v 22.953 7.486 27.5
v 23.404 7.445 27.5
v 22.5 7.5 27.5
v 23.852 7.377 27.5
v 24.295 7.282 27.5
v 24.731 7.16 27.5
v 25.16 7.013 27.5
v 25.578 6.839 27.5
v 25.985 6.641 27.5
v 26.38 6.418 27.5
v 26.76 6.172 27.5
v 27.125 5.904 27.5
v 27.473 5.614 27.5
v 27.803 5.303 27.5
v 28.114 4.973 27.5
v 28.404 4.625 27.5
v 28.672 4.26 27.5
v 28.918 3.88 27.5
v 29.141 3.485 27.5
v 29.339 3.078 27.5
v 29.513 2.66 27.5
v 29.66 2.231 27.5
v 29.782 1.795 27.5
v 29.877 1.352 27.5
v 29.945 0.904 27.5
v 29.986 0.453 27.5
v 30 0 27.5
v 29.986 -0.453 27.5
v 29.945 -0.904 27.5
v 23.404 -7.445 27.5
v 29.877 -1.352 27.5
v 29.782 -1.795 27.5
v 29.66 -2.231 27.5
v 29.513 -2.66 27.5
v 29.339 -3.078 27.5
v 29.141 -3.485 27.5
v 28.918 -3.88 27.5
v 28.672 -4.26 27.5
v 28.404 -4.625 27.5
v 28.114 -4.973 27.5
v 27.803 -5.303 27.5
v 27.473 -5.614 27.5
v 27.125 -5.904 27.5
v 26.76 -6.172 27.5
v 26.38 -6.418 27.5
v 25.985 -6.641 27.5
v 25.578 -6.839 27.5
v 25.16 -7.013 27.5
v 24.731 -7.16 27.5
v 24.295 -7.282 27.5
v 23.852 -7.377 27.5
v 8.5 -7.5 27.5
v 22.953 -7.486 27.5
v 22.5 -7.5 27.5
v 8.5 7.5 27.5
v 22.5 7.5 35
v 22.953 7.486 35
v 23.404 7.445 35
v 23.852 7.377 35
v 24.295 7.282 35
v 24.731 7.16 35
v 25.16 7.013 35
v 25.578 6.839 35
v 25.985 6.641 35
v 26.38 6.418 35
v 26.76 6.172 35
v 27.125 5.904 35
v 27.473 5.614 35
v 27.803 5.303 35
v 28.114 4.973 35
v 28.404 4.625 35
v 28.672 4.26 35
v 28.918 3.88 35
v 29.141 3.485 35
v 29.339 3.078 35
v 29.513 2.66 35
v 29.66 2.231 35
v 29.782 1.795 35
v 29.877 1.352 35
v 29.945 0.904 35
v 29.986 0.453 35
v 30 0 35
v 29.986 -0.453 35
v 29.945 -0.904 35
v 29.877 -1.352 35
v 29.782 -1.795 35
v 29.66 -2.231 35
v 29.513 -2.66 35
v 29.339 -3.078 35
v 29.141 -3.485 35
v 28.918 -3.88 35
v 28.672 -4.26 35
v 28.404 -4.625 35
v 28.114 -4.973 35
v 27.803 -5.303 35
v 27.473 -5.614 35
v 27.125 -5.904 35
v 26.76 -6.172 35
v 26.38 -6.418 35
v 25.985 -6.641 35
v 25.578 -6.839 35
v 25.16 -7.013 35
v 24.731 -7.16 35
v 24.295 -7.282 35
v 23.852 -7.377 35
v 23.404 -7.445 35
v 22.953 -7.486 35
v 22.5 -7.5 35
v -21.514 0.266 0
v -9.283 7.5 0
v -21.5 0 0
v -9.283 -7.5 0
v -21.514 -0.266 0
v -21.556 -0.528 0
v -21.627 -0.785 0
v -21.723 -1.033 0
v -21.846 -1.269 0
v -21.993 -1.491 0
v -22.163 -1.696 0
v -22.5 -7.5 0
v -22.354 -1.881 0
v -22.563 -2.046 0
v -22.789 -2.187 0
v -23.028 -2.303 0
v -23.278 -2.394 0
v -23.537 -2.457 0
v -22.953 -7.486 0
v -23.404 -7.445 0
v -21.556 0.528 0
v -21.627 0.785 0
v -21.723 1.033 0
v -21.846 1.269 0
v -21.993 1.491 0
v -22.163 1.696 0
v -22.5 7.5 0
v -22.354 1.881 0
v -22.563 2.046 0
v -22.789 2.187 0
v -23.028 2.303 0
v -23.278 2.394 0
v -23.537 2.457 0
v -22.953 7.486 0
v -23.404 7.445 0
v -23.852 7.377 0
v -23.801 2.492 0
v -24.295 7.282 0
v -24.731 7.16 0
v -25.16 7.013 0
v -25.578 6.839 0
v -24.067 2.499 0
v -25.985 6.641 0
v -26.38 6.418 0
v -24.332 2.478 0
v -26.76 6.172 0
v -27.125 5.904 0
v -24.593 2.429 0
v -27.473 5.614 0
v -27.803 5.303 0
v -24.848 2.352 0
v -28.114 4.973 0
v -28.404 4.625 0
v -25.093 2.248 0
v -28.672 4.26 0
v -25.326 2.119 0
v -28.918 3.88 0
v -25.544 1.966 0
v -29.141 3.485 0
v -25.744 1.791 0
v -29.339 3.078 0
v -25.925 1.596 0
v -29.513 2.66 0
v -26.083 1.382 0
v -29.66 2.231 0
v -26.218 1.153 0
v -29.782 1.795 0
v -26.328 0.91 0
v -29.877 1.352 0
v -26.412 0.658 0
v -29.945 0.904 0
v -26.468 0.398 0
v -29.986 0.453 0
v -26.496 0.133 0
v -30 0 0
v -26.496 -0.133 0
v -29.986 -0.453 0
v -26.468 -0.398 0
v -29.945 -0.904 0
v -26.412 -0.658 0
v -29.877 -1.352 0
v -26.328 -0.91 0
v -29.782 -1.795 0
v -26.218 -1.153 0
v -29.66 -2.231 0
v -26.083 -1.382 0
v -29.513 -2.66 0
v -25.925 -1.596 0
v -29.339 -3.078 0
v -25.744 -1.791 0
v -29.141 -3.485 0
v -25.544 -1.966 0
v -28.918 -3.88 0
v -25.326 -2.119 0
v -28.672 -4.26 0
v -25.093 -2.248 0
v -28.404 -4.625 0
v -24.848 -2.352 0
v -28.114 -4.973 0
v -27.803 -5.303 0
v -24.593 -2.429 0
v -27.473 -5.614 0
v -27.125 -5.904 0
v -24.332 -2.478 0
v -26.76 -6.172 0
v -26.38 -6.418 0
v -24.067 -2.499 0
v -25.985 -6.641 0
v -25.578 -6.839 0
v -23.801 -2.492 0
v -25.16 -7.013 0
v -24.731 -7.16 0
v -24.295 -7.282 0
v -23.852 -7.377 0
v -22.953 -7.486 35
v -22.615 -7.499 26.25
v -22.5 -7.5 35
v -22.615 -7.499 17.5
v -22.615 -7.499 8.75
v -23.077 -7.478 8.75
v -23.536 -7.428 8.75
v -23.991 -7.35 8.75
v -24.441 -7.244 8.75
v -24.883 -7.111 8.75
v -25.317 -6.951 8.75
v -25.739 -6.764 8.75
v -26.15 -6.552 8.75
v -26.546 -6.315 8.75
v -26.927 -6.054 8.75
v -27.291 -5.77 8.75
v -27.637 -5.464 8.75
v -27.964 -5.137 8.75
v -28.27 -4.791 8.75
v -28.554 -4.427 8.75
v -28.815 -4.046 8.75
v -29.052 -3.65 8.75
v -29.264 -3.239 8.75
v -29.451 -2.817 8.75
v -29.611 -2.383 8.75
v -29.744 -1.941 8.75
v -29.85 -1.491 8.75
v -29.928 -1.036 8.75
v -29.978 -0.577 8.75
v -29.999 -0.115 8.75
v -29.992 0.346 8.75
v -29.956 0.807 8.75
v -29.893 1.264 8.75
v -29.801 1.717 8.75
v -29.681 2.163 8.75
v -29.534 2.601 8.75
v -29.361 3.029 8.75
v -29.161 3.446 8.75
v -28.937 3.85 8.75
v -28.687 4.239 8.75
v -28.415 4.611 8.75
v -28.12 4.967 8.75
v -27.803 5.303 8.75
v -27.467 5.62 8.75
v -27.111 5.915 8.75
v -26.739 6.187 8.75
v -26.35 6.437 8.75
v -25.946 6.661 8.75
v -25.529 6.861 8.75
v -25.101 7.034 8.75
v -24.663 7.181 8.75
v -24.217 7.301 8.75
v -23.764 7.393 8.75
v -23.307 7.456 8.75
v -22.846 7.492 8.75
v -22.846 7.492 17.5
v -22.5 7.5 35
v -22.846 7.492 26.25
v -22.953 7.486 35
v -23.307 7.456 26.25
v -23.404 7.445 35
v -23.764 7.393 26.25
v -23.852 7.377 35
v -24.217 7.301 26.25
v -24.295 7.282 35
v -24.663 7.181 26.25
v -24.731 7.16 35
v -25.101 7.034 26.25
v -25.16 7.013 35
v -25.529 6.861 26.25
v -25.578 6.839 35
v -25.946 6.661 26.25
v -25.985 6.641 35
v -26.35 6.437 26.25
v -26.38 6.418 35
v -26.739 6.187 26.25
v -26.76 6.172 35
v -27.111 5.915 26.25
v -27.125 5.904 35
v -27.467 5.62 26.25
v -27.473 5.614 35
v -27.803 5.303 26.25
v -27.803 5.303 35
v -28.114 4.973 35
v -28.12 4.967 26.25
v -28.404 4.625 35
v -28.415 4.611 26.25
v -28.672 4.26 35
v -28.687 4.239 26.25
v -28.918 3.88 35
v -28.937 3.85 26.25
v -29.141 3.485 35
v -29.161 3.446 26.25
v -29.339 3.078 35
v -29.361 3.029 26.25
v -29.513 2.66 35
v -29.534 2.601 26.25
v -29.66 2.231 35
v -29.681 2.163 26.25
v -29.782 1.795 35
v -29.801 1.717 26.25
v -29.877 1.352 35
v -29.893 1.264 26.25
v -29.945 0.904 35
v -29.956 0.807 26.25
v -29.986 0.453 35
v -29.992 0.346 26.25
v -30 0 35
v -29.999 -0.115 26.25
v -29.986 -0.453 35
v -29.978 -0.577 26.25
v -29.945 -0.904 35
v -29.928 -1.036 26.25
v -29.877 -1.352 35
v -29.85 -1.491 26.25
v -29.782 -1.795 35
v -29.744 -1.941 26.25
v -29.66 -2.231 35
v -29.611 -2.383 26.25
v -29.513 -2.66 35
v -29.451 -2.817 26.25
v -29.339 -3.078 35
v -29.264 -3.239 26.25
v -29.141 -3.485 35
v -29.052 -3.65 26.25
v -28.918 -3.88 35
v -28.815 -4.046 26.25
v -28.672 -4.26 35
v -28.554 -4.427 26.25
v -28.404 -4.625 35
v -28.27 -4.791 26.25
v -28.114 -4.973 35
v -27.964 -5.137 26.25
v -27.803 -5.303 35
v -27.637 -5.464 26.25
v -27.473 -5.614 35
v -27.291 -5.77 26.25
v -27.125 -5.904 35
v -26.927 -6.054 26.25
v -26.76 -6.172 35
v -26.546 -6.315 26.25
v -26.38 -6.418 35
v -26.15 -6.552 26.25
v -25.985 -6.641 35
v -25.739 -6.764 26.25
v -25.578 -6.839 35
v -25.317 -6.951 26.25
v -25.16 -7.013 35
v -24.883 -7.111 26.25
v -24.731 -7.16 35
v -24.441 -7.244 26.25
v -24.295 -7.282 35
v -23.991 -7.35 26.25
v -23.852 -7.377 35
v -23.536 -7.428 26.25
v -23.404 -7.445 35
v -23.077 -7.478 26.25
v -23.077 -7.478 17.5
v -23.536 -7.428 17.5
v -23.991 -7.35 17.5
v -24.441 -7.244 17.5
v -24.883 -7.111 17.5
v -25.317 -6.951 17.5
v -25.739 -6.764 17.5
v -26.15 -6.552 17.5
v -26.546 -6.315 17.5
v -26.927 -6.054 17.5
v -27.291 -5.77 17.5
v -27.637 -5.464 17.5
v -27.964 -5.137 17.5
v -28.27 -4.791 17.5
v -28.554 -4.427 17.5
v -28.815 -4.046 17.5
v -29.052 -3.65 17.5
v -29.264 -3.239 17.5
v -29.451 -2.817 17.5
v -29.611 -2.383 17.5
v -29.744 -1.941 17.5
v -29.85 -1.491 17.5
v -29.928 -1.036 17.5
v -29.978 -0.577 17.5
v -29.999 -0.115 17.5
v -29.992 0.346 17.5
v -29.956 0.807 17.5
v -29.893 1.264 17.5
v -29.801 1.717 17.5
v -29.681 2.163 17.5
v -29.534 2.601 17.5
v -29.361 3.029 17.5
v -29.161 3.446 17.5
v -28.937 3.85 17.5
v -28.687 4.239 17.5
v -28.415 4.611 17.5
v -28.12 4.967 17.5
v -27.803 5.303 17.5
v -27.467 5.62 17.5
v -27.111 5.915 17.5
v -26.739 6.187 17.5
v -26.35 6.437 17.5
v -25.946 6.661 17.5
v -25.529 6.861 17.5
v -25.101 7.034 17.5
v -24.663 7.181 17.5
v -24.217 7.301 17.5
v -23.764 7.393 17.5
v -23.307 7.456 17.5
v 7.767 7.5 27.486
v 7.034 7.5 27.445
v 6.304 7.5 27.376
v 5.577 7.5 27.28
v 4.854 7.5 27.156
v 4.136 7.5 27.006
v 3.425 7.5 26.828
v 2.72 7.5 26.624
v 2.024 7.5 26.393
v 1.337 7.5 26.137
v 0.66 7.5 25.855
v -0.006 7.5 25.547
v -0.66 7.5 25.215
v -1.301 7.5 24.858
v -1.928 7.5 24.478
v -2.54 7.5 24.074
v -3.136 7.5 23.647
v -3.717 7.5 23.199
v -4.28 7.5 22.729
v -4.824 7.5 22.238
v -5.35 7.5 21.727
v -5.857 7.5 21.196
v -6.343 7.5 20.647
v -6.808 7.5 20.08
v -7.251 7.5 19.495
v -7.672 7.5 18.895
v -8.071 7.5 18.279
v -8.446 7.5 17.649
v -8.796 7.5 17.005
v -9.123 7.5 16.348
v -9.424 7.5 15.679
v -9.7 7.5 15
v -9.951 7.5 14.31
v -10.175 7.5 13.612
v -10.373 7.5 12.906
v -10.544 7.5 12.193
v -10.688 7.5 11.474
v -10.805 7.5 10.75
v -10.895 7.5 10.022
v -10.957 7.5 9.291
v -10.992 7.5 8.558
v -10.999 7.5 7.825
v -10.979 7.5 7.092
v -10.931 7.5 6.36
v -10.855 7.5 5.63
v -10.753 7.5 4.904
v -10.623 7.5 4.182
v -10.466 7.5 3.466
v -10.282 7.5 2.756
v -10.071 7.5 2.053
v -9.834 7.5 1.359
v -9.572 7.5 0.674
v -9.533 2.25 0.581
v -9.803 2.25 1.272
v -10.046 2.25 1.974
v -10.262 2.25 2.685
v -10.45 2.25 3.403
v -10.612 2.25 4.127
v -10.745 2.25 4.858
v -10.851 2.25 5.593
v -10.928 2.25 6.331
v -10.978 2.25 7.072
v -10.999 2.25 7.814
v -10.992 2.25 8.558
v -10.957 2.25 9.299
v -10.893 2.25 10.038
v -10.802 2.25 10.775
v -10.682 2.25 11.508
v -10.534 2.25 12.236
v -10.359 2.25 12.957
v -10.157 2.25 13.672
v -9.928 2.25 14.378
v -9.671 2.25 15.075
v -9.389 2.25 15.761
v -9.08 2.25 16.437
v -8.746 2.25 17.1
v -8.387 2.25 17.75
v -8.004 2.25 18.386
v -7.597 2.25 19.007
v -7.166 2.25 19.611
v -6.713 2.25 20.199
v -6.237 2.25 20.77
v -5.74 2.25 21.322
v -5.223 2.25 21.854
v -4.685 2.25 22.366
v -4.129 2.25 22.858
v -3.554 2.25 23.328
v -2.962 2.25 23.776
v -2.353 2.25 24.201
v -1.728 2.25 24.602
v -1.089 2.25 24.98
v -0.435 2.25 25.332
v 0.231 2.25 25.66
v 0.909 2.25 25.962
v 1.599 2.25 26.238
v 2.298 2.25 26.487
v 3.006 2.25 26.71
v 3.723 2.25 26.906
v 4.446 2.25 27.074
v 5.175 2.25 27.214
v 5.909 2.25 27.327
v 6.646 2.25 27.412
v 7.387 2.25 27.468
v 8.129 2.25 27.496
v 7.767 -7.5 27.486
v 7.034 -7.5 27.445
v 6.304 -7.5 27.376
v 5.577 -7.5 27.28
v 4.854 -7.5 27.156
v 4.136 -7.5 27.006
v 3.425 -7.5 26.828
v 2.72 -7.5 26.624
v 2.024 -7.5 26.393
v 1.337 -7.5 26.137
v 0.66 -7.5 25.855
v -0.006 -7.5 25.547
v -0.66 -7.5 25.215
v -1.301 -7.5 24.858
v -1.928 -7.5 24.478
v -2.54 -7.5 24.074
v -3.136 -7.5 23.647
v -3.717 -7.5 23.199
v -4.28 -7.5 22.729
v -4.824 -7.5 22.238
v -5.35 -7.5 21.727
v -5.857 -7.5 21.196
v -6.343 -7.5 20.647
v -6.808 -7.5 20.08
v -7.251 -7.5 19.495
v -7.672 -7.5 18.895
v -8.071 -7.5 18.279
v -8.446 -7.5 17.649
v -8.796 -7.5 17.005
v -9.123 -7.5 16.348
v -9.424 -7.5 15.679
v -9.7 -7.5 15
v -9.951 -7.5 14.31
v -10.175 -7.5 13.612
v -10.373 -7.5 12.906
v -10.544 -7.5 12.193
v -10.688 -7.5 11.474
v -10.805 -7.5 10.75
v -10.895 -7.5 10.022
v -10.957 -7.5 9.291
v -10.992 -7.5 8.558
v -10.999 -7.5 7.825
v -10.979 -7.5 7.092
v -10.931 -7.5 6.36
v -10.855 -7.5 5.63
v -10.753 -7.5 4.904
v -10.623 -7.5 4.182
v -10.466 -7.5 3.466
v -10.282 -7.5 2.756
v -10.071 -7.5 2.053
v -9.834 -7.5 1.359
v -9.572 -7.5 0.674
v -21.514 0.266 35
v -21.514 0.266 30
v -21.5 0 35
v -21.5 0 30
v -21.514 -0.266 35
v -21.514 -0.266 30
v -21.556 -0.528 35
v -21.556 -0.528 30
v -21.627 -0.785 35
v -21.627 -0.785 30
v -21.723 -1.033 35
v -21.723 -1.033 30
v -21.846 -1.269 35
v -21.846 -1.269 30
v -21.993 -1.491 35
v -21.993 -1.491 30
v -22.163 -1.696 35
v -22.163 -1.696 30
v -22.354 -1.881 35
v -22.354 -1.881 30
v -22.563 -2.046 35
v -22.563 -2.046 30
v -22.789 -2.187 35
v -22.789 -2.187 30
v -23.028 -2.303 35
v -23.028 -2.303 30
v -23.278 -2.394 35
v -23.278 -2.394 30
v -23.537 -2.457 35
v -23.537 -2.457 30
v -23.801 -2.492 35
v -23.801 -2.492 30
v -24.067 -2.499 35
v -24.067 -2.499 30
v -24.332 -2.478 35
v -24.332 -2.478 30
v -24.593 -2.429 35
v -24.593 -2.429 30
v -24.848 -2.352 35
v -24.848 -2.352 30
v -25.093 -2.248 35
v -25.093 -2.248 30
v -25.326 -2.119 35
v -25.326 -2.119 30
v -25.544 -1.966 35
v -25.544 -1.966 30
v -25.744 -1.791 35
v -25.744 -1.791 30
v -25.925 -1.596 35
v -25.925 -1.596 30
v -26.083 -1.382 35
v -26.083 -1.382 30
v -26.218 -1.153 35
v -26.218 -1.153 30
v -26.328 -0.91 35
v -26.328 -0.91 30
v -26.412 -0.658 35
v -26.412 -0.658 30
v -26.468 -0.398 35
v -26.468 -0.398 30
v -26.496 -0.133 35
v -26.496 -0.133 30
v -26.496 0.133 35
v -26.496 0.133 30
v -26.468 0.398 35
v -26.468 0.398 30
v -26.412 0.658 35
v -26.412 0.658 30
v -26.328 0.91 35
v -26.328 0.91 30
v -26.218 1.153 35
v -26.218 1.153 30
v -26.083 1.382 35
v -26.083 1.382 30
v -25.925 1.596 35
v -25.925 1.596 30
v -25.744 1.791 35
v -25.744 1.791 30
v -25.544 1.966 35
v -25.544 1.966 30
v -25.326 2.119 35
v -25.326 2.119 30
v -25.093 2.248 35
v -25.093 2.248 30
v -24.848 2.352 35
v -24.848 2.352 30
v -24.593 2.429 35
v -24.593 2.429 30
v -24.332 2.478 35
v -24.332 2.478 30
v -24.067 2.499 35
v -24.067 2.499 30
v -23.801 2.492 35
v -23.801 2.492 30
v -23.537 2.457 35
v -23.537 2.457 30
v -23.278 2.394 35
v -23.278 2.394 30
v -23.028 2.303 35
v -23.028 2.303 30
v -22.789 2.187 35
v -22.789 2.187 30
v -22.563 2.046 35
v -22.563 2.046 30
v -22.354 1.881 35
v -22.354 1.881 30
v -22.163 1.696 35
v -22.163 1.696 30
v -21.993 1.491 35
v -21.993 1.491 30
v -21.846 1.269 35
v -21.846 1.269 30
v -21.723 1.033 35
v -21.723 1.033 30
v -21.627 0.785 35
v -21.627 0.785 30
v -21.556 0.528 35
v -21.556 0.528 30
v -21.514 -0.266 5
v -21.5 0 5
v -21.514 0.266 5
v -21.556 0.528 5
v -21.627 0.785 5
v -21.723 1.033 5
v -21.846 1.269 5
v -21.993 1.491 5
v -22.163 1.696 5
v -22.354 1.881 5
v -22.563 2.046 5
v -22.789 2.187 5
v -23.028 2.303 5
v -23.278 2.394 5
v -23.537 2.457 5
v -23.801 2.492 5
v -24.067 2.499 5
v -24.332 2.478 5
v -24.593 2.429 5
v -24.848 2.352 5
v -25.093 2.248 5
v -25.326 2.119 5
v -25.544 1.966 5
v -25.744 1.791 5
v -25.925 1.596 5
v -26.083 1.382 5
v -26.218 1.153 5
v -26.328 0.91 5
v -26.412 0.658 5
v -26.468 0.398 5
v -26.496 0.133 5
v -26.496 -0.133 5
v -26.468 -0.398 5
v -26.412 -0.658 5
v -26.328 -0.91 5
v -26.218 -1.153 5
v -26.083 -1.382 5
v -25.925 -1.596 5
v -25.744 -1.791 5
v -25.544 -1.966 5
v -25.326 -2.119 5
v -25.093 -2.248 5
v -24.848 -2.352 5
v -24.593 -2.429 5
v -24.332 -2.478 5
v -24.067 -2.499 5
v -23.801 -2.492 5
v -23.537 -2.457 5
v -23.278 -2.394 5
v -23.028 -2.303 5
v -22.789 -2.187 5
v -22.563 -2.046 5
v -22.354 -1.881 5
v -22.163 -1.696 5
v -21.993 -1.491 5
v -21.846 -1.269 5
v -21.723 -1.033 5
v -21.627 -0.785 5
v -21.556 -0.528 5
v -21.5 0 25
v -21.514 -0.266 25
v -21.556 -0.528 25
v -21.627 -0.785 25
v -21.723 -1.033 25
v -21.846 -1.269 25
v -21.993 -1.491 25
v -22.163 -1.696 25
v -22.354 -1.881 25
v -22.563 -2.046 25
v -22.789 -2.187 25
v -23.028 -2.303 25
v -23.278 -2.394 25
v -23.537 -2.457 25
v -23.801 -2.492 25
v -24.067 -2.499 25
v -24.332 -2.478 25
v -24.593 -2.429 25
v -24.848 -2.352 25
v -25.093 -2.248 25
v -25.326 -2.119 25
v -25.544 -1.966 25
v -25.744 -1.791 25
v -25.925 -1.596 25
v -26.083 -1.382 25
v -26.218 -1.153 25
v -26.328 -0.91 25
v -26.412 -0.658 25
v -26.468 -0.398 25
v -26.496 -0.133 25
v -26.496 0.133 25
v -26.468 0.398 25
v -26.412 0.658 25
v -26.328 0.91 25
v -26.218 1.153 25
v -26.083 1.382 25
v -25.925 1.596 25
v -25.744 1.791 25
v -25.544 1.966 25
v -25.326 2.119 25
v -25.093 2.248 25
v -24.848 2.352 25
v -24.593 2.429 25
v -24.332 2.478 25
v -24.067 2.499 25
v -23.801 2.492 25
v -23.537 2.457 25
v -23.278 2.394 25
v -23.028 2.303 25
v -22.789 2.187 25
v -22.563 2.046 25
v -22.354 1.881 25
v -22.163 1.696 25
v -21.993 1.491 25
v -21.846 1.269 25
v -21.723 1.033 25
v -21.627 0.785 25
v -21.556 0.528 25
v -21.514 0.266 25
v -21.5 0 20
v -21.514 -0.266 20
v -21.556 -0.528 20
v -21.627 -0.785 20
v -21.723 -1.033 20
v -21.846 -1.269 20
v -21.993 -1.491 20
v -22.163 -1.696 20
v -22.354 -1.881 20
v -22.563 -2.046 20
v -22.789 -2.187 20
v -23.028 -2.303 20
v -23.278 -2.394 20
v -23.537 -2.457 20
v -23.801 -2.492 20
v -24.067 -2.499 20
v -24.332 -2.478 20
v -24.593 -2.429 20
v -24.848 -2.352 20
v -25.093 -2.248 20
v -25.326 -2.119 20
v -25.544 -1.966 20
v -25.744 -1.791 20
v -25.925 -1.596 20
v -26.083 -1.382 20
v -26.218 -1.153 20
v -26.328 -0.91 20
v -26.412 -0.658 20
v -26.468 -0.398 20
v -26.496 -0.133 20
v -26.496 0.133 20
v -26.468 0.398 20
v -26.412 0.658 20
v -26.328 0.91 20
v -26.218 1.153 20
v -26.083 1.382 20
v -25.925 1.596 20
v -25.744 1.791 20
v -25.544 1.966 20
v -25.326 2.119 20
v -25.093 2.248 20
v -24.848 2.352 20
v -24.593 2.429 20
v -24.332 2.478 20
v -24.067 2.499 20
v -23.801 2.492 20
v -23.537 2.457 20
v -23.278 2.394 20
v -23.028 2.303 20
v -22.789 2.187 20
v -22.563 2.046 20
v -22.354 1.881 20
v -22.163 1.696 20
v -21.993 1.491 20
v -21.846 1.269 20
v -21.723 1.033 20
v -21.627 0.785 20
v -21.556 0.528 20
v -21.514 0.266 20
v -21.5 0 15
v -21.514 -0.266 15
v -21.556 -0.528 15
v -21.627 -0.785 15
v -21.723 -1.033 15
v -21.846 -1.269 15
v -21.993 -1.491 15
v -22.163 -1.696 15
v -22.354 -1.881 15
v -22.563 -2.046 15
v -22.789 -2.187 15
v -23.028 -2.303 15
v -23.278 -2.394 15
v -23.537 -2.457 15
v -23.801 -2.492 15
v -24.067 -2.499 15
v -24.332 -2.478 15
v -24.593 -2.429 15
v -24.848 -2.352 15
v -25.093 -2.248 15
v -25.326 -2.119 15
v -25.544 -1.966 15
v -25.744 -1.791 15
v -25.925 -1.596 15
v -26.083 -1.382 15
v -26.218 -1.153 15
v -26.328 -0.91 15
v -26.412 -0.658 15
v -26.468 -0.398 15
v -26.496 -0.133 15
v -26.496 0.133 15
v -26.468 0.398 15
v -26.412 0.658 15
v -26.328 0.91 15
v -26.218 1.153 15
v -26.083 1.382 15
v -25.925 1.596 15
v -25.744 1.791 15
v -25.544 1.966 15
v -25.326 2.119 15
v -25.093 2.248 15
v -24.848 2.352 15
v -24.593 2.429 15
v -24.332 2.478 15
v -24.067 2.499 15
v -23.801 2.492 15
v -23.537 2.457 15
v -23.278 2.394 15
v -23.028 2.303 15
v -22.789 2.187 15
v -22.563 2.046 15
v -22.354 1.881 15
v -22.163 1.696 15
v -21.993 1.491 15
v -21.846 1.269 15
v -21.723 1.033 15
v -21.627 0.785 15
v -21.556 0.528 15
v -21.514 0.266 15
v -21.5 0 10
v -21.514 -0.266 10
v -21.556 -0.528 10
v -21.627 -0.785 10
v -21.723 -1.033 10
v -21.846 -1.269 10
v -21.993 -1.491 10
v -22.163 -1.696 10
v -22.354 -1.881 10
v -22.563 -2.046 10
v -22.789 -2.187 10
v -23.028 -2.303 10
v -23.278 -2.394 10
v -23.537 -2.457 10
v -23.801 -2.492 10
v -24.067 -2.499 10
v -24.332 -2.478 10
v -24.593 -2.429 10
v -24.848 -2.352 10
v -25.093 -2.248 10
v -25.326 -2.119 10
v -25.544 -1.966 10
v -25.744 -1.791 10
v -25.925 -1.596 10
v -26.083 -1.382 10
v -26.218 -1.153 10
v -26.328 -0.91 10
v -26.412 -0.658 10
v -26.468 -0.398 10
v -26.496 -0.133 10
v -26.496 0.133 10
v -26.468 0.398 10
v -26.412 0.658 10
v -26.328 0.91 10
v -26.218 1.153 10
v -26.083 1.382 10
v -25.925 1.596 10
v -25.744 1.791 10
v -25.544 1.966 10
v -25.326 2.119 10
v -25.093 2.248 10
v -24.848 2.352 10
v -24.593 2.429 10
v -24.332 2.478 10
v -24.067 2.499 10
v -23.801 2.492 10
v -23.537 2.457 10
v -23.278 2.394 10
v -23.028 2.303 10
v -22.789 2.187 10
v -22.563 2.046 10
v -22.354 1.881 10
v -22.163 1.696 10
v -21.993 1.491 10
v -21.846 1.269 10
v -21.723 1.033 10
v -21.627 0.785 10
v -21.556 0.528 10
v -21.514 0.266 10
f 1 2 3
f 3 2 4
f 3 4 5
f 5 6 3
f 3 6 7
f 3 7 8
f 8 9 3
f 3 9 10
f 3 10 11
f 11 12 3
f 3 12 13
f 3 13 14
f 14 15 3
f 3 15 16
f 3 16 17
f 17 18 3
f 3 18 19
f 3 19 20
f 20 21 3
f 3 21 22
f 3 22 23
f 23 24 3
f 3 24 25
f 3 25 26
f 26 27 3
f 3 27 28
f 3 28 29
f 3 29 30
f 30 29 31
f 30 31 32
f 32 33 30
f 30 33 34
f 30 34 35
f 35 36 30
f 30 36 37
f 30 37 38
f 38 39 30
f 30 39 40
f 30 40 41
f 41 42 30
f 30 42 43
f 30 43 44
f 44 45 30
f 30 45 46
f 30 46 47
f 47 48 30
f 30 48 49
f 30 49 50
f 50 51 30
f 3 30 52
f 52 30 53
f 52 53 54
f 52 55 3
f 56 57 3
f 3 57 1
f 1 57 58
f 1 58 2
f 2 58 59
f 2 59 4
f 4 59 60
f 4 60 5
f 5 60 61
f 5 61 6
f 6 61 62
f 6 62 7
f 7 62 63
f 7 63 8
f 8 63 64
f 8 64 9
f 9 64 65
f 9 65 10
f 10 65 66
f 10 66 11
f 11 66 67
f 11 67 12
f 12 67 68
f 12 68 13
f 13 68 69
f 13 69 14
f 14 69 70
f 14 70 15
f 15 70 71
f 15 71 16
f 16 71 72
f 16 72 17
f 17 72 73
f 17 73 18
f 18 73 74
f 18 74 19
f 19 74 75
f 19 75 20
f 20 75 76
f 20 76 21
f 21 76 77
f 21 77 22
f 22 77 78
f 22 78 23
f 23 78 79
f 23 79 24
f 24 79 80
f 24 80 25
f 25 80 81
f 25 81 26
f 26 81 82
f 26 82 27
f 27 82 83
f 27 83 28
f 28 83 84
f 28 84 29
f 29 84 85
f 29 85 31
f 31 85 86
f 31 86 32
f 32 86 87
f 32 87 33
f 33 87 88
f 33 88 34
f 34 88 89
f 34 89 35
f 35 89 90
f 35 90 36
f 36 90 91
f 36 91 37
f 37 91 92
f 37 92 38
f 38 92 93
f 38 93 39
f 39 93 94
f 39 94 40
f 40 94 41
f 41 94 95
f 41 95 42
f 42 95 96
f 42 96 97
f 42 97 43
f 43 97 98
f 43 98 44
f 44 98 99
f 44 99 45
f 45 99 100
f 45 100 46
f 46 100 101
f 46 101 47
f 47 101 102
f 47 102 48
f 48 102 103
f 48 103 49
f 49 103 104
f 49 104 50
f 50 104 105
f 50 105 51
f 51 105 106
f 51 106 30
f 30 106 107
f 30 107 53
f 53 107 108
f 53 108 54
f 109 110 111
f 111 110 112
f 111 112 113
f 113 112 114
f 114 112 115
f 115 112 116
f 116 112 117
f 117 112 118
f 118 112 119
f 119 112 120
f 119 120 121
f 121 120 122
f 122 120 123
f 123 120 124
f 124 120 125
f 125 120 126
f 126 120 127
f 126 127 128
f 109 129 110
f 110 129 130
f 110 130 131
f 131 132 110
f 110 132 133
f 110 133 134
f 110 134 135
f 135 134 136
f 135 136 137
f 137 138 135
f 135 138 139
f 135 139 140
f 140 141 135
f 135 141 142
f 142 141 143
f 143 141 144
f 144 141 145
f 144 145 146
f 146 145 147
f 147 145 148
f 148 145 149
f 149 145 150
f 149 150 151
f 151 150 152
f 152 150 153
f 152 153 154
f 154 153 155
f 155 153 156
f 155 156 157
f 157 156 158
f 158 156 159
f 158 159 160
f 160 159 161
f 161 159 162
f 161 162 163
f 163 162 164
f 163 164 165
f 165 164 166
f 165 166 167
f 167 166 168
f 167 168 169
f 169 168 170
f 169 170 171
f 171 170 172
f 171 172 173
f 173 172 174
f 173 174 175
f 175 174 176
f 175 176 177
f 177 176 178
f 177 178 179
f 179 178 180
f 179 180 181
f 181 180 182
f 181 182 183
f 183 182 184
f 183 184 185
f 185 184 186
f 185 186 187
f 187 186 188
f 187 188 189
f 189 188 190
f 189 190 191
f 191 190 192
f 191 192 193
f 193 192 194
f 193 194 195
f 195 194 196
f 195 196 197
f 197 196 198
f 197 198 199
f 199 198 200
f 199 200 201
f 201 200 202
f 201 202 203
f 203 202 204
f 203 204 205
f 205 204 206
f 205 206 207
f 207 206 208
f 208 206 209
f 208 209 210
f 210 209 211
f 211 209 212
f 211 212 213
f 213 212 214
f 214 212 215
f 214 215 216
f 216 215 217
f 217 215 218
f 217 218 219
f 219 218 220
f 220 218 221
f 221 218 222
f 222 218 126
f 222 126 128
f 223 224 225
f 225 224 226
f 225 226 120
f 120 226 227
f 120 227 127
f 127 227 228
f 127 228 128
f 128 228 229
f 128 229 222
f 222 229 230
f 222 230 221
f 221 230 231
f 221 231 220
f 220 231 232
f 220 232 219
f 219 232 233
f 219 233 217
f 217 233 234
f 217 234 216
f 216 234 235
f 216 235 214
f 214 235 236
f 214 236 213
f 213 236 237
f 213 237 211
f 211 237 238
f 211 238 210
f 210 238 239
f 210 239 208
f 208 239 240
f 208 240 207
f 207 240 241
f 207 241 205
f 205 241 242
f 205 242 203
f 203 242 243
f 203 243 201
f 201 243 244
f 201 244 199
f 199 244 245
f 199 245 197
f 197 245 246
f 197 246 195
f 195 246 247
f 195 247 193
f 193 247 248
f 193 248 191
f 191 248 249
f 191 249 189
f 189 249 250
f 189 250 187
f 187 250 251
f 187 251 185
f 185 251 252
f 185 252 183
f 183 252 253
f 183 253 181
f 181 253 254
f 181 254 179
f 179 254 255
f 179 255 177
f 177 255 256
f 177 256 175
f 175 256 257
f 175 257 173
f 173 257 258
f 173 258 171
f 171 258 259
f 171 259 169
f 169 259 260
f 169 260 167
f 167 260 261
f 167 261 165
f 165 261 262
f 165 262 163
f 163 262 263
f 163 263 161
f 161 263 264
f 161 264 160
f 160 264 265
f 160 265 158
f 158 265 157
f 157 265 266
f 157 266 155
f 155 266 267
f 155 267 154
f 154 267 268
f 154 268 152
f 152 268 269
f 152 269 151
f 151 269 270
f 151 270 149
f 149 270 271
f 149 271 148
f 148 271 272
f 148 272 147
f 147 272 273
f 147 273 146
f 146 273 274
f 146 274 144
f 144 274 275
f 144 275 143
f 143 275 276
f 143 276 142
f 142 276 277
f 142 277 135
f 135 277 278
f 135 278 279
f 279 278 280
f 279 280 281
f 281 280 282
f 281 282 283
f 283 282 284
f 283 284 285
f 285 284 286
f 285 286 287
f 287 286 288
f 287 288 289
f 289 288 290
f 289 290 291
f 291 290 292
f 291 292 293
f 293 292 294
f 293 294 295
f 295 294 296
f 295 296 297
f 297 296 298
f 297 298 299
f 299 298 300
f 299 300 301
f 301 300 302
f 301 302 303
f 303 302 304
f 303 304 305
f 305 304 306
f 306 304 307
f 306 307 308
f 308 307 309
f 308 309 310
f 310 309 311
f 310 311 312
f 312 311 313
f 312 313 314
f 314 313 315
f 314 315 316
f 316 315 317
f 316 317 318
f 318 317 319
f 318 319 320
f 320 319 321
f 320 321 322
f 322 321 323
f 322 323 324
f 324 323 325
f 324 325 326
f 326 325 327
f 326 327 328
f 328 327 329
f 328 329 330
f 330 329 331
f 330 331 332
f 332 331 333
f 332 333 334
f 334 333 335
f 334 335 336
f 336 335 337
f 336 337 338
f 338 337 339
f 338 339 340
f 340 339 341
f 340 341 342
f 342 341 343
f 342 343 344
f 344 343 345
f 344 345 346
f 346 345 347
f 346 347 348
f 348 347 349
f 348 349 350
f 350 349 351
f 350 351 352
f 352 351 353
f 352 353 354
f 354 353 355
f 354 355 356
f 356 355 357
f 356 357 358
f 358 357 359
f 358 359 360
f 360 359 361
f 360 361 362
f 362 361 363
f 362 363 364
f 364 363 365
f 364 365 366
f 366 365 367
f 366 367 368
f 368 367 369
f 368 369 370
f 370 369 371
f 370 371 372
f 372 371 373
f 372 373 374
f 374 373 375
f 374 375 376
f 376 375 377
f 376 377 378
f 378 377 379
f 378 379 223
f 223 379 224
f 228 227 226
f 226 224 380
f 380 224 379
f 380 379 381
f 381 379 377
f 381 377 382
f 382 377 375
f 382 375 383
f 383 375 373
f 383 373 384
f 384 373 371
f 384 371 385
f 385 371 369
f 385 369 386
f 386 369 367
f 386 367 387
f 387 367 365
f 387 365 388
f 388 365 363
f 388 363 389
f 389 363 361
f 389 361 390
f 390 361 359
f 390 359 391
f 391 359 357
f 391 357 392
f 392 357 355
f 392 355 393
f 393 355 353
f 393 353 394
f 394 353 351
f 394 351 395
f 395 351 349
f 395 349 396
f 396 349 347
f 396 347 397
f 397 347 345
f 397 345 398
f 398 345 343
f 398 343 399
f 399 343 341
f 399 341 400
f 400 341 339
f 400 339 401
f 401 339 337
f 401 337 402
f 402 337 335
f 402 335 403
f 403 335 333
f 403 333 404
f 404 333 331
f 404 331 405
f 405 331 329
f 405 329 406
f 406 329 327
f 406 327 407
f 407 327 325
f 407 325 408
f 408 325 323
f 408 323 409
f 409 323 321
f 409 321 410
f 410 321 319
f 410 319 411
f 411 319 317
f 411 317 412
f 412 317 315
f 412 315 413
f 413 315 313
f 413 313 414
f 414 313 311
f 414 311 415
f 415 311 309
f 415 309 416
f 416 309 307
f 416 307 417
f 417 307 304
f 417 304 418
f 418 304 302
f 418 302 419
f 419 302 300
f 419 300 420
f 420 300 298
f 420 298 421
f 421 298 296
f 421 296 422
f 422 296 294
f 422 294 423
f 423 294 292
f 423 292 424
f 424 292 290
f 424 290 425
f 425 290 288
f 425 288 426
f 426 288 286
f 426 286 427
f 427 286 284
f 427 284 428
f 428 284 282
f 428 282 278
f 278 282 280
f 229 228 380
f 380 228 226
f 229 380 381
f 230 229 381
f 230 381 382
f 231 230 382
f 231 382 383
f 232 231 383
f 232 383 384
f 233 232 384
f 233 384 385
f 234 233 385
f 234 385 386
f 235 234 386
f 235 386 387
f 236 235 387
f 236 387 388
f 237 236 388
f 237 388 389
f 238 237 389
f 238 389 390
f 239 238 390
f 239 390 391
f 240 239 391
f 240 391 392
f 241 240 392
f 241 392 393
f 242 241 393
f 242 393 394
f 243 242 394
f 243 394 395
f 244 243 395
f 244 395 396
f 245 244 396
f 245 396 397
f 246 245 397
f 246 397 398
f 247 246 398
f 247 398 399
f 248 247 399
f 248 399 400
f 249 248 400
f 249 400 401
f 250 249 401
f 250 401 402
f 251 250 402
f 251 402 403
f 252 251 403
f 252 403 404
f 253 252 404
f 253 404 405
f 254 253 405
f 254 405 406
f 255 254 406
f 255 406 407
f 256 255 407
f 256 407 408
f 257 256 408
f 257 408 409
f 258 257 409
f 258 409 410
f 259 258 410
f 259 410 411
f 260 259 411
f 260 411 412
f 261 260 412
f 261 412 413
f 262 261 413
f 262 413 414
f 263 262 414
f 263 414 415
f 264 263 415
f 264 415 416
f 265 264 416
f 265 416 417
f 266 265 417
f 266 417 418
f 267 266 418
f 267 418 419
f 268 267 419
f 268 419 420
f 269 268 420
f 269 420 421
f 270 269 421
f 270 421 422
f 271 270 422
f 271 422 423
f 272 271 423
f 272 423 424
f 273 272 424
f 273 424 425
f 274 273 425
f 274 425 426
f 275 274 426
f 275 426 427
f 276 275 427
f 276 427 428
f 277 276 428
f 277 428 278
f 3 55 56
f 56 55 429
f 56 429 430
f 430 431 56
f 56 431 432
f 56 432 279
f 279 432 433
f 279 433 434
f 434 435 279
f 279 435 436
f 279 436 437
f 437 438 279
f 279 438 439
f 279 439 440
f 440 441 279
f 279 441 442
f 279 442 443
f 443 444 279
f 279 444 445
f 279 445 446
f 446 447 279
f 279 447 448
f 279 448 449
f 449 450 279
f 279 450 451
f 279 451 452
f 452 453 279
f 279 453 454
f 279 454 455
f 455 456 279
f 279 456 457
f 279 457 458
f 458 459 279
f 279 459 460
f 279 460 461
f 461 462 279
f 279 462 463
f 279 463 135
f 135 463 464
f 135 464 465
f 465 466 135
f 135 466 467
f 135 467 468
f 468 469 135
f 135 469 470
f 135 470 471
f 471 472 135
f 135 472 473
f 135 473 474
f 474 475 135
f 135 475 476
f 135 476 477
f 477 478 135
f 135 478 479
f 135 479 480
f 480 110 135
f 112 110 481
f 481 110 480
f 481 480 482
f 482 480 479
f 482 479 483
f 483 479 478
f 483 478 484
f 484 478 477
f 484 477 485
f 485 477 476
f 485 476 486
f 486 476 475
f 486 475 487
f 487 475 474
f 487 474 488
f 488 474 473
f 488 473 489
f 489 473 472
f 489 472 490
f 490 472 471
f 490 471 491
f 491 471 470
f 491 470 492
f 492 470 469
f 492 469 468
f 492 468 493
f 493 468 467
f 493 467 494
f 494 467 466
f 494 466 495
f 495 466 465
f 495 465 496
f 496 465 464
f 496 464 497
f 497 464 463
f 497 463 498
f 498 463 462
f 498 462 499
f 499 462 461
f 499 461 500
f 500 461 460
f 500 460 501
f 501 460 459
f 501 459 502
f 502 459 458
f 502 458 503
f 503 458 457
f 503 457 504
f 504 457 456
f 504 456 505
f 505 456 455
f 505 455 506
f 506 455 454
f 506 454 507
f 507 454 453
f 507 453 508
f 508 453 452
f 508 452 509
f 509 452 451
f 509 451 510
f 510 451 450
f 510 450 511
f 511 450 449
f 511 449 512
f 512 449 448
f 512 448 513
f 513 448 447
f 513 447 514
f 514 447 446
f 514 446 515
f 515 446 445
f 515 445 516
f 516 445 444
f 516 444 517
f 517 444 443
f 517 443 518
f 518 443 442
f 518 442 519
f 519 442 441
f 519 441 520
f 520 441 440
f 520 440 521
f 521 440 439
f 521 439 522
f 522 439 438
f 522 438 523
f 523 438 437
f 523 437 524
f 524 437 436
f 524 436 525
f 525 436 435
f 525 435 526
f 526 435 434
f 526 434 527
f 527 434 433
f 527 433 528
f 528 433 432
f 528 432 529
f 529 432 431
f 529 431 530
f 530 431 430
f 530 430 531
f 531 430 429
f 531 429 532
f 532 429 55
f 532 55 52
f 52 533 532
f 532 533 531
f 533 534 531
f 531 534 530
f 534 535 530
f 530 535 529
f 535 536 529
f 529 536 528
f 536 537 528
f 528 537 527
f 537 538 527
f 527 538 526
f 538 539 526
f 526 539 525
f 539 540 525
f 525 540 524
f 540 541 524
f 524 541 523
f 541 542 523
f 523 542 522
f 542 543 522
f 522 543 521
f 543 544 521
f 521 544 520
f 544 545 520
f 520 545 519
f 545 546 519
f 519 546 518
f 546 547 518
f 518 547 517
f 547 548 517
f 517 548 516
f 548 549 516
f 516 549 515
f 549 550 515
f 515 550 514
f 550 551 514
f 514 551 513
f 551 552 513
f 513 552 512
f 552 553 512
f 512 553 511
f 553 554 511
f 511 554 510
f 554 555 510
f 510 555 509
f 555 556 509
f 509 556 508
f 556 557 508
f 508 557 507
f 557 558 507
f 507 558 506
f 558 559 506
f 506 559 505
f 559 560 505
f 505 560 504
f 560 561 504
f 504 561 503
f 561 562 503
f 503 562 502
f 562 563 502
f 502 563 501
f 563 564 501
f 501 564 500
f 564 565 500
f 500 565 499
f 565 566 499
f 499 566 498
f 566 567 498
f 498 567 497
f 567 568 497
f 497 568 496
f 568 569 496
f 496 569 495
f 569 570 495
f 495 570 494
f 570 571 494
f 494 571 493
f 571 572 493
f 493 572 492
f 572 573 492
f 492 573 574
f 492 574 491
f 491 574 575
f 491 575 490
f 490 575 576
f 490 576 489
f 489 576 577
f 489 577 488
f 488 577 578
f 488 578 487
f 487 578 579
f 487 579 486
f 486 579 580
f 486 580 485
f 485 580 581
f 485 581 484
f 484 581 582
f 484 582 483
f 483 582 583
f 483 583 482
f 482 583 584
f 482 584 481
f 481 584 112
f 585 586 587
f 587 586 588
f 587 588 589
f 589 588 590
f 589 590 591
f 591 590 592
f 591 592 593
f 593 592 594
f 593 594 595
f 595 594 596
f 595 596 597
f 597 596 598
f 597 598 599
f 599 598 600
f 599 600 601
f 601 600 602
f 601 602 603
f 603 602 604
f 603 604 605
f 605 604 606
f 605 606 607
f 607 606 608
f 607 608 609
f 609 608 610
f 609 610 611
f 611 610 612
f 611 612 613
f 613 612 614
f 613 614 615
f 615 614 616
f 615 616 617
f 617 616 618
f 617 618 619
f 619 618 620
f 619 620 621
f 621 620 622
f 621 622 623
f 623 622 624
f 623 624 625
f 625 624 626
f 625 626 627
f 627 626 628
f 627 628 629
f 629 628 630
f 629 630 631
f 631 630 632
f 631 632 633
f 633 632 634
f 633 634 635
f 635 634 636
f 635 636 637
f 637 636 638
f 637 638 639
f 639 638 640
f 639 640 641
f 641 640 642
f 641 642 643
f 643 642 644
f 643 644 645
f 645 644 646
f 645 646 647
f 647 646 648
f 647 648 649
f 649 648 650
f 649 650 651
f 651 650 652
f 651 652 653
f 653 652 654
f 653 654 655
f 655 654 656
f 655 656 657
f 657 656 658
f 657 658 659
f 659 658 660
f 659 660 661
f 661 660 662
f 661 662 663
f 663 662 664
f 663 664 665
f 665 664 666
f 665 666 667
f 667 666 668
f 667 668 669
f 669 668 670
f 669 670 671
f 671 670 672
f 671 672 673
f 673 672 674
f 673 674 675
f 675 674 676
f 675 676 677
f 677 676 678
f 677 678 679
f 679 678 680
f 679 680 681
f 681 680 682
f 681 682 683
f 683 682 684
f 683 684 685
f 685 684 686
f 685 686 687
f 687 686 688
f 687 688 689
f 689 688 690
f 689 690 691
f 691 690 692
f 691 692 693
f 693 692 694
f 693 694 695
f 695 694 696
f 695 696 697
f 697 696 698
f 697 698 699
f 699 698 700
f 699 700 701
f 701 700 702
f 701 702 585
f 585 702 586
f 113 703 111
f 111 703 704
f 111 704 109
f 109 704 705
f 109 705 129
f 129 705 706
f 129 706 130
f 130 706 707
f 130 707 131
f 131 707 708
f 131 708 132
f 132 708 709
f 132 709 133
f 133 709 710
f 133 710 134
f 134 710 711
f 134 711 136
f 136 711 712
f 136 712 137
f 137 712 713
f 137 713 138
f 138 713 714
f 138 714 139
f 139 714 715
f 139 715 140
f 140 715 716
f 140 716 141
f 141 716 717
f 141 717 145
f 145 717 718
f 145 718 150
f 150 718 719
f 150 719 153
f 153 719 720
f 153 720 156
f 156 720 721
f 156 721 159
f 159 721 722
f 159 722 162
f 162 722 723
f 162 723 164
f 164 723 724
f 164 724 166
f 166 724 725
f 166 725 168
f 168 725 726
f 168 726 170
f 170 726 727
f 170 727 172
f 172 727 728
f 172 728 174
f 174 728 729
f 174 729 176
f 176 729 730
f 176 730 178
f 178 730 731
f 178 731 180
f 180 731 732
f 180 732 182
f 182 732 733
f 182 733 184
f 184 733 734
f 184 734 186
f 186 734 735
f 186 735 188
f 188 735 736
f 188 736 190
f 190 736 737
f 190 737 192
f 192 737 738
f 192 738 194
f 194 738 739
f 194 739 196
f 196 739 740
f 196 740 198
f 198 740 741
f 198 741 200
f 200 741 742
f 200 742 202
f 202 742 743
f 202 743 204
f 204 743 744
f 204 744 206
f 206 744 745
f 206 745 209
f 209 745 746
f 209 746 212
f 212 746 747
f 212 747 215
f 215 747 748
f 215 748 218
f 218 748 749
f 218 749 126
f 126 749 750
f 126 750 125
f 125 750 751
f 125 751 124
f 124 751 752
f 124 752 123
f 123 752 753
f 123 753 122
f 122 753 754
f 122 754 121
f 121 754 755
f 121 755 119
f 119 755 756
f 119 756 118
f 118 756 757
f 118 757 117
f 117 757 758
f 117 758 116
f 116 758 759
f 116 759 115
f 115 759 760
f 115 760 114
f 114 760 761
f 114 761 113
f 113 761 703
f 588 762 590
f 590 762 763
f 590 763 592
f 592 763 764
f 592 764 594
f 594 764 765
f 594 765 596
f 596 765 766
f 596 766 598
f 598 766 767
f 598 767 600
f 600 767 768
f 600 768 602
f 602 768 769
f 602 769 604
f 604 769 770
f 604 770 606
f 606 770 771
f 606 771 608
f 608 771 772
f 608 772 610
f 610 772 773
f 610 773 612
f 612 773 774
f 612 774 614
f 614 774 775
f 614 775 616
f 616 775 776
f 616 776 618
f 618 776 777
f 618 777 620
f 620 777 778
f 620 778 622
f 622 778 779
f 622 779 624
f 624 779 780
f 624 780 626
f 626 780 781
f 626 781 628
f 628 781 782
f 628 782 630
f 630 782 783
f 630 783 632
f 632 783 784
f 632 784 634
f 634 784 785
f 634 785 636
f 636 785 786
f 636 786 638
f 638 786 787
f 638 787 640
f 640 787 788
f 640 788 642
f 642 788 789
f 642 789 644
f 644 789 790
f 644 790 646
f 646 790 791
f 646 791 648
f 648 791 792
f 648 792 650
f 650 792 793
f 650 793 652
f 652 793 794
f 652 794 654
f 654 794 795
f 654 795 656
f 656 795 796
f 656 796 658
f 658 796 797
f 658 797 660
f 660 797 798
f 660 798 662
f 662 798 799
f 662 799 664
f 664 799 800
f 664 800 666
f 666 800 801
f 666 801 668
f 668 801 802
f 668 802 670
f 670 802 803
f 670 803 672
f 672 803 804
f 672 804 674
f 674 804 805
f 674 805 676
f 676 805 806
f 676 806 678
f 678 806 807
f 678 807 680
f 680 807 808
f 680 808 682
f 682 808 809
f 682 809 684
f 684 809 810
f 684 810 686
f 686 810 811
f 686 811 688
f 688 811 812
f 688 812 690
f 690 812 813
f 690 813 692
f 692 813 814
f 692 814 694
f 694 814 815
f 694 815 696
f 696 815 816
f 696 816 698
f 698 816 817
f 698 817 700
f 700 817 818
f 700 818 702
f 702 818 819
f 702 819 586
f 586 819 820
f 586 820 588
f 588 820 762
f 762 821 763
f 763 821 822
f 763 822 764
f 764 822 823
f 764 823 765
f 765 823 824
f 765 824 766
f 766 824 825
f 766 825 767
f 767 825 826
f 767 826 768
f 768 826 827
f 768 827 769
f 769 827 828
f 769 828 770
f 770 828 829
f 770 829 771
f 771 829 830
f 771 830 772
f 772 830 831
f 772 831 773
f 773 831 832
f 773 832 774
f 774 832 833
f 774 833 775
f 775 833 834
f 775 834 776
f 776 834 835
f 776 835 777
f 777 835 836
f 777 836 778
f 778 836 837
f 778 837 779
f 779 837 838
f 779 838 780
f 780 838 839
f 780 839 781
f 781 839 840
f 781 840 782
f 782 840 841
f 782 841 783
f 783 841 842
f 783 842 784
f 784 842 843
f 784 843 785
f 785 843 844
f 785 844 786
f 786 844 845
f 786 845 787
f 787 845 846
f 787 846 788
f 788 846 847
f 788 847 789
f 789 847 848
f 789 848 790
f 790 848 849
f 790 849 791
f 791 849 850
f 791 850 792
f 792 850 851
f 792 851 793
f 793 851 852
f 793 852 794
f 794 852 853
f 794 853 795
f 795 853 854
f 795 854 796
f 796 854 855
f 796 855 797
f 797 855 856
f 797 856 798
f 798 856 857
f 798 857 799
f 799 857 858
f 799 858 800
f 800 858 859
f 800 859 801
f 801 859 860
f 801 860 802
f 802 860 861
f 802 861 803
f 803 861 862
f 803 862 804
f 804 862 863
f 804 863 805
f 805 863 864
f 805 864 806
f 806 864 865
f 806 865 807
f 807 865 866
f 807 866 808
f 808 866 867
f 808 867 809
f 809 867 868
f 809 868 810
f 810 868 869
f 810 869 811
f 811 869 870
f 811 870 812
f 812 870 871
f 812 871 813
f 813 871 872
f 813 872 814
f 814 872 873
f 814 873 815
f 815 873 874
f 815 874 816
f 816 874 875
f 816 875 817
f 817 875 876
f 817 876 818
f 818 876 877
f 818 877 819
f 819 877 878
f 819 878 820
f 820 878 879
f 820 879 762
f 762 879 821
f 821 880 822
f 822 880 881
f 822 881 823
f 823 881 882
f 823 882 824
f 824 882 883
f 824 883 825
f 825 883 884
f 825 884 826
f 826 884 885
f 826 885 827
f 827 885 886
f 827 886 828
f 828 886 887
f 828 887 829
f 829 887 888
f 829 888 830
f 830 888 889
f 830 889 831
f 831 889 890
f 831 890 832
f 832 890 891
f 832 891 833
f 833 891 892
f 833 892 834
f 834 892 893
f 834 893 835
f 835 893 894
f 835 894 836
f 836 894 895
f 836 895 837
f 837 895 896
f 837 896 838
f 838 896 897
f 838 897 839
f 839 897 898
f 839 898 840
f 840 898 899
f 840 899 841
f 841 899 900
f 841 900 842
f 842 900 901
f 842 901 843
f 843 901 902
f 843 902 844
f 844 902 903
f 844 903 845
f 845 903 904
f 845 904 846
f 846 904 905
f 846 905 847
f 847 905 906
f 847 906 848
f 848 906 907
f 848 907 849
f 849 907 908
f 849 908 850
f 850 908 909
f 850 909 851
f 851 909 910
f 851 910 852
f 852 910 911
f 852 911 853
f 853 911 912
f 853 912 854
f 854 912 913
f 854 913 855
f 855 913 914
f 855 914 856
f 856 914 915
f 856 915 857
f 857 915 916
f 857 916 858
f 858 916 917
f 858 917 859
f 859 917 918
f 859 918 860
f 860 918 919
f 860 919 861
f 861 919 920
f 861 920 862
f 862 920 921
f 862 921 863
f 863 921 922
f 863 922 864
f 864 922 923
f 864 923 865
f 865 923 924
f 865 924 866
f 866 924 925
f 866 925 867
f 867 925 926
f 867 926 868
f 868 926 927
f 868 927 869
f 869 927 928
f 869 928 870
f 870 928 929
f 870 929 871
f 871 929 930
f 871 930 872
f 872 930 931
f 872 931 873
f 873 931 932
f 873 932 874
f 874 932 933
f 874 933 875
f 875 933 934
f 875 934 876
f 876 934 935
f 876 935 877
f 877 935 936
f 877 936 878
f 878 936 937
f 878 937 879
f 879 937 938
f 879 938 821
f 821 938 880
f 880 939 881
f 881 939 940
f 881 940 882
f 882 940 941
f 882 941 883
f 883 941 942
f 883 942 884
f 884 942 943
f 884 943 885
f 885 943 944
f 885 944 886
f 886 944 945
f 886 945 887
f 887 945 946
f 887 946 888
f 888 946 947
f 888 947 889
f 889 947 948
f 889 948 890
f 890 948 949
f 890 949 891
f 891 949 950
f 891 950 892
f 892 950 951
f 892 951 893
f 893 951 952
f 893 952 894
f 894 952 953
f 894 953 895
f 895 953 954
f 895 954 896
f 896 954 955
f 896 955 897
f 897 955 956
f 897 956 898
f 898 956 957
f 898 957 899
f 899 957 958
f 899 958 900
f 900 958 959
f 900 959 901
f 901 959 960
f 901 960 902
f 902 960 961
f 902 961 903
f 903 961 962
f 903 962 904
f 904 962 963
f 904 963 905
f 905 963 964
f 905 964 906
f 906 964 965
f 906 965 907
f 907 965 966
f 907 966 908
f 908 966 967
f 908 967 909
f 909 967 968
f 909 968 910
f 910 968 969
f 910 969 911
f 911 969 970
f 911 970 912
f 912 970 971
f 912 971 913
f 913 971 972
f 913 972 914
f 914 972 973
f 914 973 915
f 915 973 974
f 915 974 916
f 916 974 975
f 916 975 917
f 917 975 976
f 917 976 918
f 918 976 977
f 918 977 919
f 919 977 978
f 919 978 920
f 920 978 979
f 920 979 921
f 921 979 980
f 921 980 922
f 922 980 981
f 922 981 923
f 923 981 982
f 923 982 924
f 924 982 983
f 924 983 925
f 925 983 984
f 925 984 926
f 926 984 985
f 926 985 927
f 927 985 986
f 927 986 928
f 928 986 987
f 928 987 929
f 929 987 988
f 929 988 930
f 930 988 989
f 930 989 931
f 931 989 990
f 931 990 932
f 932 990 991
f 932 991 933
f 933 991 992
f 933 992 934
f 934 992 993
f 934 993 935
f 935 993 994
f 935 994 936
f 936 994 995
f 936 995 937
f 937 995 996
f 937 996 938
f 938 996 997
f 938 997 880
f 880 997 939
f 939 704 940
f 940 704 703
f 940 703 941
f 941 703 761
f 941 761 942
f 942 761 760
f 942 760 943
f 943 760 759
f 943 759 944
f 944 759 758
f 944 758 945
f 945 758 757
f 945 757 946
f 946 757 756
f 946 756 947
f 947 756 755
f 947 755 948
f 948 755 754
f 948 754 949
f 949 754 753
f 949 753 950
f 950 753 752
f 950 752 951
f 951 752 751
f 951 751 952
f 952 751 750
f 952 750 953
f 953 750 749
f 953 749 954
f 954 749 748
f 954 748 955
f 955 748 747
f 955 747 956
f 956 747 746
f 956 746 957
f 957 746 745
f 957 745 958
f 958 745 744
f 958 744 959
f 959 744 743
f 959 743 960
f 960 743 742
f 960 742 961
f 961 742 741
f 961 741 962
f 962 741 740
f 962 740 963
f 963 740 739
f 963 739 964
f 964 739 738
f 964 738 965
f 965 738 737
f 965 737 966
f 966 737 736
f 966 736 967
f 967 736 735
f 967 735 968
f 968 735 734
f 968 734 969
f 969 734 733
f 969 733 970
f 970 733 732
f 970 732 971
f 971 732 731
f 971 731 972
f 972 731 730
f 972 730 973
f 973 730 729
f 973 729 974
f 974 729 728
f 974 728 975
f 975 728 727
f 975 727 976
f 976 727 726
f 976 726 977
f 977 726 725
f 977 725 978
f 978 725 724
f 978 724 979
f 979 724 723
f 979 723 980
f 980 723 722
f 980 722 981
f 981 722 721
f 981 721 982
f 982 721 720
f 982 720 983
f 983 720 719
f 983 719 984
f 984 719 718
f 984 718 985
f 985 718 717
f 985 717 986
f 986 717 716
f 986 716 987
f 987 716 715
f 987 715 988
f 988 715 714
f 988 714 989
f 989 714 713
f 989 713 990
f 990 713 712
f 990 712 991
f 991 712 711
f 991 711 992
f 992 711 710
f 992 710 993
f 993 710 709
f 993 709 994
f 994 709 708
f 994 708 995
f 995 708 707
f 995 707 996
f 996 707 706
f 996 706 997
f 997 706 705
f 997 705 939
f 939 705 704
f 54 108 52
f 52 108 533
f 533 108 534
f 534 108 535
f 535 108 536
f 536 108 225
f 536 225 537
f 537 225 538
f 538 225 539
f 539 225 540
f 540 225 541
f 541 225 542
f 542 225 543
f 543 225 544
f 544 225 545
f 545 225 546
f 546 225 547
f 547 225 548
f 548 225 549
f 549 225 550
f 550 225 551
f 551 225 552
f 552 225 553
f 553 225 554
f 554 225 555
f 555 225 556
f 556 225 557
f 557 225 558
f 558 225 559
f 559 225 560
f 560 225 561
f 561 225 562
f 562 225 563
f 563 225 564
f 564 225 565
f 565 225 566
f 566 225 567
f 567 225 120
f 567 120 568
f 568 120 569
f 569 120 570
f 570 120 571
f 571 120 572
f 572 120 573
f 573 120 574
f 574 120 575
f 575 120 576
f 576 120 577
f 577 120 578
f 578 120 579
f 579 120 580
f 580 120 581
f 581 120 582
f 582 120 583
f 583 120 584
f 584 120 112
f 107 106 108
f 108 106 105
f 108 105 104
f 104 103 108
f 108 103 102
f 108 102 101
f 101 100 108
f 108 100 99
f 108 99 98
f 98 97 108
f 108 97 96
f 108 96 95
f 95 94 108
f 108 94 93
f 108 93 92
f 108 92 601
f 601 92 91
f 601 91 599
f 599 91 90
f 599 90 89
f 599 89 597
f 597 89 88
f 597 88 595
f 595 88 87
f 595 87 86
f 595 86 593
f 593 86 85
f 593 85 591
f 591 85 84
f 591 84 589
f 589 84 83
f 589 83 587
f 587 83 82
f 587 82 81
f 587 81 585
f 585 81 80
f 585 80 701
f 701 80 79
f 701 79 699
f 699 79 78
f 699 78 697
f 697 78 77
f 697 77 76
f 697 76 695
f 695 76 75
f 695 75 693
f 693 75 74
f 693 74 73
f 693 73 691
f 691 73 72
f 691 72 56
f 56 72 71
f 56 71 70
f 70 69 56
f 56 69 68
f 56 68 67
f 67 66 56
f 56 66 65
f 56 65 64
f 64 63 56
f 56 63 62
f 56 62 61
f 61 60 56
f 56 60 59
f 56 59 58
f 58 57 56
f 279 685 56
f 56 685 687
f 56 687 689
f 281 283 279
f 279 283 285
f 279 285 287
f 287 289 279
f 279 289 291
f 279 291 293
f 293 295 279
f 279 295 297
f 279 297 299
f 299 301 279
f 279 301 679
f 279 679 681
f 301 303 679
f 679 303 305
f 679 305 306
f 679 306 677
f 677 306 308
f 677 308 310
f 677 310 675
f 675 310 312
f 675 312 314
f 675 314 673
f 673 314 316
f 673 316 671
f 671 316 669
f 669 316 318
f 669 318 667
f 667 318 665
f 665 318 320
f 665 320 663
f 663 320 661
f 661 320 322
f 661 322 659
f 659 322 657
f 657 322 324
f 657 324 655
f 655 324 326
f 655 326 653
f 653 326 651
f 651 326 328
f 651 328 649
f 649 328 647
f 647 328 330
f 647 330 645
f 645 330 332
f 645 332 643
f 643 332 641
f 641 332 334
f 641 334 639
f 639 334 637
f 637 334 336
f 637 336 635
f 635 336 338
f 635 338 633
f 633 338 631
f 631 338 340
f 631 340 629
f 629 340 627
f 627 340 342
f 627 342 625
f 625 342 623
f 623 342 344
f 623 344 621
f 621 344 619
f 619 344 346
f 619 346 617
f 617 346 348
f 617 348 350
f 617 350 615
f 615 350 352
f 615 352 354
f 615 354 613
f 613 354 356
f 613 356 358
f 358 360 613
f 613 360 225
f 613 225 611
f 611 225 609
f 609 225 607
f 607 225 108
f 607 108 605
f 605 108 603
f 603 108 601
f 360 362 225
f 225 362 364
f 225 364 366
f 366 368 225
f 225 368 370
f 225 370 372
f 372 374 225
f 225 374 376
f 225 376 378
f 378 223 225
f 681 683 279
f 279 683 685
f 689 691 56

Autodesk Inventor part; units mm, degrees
ref_plane "YZ Plane" through (0, 0, 0) normal (1, 0, 0) x (0, 1, 0)
ref_plane "XZ Plane" through (0, 0, 0) normal (0, 1, 0) x (-1, 0, 0)
ref_plane "XY Plane" through (0, 0, 0) normal (0, 0, 1) x (1, 0, 0)
sketch "Sketch1" plane through (0, 0, 0) normal (0, 0, 1) x (1, 0, 0)
  line L0 (-30, 7.5) -> (30, 7.5)
  line L1 (30, 7.5) -> (30, -7.5)
  line L2 (30, -7.5) -> (-30, -7.5)
  line L3 (-30, -7.5) -> (-30, 7.5)
  circle A0 centre (-24, 0) radius 2.5
  point P0 (0, 0)
  point P1 (0, 7.5)
  point P2 (-30, 0)
  dimension "d0" = 5
  dimension "d1" = 6
  dimension "d2" = 15
  dimension "d3" = 60
extrude "Extrusion1" add sketch "Sketch1" along normal blind 35
sketch "Sketch2" plane through (-30, -7.5, 0) normal (0, -1, 0) x (1, 0, 0)
  circle A0 centre (38.5, 8) radius 17.9938 projected
  arc A1 (38.5, 27.5) -> (56.2834, 0) centre (38.5, 8) ccw
  line L0 (38.5, 27.5) -> (60, 27.5)
  line L1 (60, 0) -> (60, 35) projected
  line L2 (0, 0) -> (60, 0) projected
  point P0 (30, 0)
  point P1 (20.7166, 0)
  dimension "d6" = 39
extrude "Extrusion2" cut sketch "Sketch2" against normal through all contours A0 L2 | A0 L2 A1 L0 L1 picked at (33.6467, 10.9183)
fillet "Fillet1" radius 7.5 4 edges at (-30, 7.5, 17.5) (-30, -7.5, 17.5) (30, -7.5, 31.25) (30, 7.5, 31.25)
properties part number "0008-30-009"
